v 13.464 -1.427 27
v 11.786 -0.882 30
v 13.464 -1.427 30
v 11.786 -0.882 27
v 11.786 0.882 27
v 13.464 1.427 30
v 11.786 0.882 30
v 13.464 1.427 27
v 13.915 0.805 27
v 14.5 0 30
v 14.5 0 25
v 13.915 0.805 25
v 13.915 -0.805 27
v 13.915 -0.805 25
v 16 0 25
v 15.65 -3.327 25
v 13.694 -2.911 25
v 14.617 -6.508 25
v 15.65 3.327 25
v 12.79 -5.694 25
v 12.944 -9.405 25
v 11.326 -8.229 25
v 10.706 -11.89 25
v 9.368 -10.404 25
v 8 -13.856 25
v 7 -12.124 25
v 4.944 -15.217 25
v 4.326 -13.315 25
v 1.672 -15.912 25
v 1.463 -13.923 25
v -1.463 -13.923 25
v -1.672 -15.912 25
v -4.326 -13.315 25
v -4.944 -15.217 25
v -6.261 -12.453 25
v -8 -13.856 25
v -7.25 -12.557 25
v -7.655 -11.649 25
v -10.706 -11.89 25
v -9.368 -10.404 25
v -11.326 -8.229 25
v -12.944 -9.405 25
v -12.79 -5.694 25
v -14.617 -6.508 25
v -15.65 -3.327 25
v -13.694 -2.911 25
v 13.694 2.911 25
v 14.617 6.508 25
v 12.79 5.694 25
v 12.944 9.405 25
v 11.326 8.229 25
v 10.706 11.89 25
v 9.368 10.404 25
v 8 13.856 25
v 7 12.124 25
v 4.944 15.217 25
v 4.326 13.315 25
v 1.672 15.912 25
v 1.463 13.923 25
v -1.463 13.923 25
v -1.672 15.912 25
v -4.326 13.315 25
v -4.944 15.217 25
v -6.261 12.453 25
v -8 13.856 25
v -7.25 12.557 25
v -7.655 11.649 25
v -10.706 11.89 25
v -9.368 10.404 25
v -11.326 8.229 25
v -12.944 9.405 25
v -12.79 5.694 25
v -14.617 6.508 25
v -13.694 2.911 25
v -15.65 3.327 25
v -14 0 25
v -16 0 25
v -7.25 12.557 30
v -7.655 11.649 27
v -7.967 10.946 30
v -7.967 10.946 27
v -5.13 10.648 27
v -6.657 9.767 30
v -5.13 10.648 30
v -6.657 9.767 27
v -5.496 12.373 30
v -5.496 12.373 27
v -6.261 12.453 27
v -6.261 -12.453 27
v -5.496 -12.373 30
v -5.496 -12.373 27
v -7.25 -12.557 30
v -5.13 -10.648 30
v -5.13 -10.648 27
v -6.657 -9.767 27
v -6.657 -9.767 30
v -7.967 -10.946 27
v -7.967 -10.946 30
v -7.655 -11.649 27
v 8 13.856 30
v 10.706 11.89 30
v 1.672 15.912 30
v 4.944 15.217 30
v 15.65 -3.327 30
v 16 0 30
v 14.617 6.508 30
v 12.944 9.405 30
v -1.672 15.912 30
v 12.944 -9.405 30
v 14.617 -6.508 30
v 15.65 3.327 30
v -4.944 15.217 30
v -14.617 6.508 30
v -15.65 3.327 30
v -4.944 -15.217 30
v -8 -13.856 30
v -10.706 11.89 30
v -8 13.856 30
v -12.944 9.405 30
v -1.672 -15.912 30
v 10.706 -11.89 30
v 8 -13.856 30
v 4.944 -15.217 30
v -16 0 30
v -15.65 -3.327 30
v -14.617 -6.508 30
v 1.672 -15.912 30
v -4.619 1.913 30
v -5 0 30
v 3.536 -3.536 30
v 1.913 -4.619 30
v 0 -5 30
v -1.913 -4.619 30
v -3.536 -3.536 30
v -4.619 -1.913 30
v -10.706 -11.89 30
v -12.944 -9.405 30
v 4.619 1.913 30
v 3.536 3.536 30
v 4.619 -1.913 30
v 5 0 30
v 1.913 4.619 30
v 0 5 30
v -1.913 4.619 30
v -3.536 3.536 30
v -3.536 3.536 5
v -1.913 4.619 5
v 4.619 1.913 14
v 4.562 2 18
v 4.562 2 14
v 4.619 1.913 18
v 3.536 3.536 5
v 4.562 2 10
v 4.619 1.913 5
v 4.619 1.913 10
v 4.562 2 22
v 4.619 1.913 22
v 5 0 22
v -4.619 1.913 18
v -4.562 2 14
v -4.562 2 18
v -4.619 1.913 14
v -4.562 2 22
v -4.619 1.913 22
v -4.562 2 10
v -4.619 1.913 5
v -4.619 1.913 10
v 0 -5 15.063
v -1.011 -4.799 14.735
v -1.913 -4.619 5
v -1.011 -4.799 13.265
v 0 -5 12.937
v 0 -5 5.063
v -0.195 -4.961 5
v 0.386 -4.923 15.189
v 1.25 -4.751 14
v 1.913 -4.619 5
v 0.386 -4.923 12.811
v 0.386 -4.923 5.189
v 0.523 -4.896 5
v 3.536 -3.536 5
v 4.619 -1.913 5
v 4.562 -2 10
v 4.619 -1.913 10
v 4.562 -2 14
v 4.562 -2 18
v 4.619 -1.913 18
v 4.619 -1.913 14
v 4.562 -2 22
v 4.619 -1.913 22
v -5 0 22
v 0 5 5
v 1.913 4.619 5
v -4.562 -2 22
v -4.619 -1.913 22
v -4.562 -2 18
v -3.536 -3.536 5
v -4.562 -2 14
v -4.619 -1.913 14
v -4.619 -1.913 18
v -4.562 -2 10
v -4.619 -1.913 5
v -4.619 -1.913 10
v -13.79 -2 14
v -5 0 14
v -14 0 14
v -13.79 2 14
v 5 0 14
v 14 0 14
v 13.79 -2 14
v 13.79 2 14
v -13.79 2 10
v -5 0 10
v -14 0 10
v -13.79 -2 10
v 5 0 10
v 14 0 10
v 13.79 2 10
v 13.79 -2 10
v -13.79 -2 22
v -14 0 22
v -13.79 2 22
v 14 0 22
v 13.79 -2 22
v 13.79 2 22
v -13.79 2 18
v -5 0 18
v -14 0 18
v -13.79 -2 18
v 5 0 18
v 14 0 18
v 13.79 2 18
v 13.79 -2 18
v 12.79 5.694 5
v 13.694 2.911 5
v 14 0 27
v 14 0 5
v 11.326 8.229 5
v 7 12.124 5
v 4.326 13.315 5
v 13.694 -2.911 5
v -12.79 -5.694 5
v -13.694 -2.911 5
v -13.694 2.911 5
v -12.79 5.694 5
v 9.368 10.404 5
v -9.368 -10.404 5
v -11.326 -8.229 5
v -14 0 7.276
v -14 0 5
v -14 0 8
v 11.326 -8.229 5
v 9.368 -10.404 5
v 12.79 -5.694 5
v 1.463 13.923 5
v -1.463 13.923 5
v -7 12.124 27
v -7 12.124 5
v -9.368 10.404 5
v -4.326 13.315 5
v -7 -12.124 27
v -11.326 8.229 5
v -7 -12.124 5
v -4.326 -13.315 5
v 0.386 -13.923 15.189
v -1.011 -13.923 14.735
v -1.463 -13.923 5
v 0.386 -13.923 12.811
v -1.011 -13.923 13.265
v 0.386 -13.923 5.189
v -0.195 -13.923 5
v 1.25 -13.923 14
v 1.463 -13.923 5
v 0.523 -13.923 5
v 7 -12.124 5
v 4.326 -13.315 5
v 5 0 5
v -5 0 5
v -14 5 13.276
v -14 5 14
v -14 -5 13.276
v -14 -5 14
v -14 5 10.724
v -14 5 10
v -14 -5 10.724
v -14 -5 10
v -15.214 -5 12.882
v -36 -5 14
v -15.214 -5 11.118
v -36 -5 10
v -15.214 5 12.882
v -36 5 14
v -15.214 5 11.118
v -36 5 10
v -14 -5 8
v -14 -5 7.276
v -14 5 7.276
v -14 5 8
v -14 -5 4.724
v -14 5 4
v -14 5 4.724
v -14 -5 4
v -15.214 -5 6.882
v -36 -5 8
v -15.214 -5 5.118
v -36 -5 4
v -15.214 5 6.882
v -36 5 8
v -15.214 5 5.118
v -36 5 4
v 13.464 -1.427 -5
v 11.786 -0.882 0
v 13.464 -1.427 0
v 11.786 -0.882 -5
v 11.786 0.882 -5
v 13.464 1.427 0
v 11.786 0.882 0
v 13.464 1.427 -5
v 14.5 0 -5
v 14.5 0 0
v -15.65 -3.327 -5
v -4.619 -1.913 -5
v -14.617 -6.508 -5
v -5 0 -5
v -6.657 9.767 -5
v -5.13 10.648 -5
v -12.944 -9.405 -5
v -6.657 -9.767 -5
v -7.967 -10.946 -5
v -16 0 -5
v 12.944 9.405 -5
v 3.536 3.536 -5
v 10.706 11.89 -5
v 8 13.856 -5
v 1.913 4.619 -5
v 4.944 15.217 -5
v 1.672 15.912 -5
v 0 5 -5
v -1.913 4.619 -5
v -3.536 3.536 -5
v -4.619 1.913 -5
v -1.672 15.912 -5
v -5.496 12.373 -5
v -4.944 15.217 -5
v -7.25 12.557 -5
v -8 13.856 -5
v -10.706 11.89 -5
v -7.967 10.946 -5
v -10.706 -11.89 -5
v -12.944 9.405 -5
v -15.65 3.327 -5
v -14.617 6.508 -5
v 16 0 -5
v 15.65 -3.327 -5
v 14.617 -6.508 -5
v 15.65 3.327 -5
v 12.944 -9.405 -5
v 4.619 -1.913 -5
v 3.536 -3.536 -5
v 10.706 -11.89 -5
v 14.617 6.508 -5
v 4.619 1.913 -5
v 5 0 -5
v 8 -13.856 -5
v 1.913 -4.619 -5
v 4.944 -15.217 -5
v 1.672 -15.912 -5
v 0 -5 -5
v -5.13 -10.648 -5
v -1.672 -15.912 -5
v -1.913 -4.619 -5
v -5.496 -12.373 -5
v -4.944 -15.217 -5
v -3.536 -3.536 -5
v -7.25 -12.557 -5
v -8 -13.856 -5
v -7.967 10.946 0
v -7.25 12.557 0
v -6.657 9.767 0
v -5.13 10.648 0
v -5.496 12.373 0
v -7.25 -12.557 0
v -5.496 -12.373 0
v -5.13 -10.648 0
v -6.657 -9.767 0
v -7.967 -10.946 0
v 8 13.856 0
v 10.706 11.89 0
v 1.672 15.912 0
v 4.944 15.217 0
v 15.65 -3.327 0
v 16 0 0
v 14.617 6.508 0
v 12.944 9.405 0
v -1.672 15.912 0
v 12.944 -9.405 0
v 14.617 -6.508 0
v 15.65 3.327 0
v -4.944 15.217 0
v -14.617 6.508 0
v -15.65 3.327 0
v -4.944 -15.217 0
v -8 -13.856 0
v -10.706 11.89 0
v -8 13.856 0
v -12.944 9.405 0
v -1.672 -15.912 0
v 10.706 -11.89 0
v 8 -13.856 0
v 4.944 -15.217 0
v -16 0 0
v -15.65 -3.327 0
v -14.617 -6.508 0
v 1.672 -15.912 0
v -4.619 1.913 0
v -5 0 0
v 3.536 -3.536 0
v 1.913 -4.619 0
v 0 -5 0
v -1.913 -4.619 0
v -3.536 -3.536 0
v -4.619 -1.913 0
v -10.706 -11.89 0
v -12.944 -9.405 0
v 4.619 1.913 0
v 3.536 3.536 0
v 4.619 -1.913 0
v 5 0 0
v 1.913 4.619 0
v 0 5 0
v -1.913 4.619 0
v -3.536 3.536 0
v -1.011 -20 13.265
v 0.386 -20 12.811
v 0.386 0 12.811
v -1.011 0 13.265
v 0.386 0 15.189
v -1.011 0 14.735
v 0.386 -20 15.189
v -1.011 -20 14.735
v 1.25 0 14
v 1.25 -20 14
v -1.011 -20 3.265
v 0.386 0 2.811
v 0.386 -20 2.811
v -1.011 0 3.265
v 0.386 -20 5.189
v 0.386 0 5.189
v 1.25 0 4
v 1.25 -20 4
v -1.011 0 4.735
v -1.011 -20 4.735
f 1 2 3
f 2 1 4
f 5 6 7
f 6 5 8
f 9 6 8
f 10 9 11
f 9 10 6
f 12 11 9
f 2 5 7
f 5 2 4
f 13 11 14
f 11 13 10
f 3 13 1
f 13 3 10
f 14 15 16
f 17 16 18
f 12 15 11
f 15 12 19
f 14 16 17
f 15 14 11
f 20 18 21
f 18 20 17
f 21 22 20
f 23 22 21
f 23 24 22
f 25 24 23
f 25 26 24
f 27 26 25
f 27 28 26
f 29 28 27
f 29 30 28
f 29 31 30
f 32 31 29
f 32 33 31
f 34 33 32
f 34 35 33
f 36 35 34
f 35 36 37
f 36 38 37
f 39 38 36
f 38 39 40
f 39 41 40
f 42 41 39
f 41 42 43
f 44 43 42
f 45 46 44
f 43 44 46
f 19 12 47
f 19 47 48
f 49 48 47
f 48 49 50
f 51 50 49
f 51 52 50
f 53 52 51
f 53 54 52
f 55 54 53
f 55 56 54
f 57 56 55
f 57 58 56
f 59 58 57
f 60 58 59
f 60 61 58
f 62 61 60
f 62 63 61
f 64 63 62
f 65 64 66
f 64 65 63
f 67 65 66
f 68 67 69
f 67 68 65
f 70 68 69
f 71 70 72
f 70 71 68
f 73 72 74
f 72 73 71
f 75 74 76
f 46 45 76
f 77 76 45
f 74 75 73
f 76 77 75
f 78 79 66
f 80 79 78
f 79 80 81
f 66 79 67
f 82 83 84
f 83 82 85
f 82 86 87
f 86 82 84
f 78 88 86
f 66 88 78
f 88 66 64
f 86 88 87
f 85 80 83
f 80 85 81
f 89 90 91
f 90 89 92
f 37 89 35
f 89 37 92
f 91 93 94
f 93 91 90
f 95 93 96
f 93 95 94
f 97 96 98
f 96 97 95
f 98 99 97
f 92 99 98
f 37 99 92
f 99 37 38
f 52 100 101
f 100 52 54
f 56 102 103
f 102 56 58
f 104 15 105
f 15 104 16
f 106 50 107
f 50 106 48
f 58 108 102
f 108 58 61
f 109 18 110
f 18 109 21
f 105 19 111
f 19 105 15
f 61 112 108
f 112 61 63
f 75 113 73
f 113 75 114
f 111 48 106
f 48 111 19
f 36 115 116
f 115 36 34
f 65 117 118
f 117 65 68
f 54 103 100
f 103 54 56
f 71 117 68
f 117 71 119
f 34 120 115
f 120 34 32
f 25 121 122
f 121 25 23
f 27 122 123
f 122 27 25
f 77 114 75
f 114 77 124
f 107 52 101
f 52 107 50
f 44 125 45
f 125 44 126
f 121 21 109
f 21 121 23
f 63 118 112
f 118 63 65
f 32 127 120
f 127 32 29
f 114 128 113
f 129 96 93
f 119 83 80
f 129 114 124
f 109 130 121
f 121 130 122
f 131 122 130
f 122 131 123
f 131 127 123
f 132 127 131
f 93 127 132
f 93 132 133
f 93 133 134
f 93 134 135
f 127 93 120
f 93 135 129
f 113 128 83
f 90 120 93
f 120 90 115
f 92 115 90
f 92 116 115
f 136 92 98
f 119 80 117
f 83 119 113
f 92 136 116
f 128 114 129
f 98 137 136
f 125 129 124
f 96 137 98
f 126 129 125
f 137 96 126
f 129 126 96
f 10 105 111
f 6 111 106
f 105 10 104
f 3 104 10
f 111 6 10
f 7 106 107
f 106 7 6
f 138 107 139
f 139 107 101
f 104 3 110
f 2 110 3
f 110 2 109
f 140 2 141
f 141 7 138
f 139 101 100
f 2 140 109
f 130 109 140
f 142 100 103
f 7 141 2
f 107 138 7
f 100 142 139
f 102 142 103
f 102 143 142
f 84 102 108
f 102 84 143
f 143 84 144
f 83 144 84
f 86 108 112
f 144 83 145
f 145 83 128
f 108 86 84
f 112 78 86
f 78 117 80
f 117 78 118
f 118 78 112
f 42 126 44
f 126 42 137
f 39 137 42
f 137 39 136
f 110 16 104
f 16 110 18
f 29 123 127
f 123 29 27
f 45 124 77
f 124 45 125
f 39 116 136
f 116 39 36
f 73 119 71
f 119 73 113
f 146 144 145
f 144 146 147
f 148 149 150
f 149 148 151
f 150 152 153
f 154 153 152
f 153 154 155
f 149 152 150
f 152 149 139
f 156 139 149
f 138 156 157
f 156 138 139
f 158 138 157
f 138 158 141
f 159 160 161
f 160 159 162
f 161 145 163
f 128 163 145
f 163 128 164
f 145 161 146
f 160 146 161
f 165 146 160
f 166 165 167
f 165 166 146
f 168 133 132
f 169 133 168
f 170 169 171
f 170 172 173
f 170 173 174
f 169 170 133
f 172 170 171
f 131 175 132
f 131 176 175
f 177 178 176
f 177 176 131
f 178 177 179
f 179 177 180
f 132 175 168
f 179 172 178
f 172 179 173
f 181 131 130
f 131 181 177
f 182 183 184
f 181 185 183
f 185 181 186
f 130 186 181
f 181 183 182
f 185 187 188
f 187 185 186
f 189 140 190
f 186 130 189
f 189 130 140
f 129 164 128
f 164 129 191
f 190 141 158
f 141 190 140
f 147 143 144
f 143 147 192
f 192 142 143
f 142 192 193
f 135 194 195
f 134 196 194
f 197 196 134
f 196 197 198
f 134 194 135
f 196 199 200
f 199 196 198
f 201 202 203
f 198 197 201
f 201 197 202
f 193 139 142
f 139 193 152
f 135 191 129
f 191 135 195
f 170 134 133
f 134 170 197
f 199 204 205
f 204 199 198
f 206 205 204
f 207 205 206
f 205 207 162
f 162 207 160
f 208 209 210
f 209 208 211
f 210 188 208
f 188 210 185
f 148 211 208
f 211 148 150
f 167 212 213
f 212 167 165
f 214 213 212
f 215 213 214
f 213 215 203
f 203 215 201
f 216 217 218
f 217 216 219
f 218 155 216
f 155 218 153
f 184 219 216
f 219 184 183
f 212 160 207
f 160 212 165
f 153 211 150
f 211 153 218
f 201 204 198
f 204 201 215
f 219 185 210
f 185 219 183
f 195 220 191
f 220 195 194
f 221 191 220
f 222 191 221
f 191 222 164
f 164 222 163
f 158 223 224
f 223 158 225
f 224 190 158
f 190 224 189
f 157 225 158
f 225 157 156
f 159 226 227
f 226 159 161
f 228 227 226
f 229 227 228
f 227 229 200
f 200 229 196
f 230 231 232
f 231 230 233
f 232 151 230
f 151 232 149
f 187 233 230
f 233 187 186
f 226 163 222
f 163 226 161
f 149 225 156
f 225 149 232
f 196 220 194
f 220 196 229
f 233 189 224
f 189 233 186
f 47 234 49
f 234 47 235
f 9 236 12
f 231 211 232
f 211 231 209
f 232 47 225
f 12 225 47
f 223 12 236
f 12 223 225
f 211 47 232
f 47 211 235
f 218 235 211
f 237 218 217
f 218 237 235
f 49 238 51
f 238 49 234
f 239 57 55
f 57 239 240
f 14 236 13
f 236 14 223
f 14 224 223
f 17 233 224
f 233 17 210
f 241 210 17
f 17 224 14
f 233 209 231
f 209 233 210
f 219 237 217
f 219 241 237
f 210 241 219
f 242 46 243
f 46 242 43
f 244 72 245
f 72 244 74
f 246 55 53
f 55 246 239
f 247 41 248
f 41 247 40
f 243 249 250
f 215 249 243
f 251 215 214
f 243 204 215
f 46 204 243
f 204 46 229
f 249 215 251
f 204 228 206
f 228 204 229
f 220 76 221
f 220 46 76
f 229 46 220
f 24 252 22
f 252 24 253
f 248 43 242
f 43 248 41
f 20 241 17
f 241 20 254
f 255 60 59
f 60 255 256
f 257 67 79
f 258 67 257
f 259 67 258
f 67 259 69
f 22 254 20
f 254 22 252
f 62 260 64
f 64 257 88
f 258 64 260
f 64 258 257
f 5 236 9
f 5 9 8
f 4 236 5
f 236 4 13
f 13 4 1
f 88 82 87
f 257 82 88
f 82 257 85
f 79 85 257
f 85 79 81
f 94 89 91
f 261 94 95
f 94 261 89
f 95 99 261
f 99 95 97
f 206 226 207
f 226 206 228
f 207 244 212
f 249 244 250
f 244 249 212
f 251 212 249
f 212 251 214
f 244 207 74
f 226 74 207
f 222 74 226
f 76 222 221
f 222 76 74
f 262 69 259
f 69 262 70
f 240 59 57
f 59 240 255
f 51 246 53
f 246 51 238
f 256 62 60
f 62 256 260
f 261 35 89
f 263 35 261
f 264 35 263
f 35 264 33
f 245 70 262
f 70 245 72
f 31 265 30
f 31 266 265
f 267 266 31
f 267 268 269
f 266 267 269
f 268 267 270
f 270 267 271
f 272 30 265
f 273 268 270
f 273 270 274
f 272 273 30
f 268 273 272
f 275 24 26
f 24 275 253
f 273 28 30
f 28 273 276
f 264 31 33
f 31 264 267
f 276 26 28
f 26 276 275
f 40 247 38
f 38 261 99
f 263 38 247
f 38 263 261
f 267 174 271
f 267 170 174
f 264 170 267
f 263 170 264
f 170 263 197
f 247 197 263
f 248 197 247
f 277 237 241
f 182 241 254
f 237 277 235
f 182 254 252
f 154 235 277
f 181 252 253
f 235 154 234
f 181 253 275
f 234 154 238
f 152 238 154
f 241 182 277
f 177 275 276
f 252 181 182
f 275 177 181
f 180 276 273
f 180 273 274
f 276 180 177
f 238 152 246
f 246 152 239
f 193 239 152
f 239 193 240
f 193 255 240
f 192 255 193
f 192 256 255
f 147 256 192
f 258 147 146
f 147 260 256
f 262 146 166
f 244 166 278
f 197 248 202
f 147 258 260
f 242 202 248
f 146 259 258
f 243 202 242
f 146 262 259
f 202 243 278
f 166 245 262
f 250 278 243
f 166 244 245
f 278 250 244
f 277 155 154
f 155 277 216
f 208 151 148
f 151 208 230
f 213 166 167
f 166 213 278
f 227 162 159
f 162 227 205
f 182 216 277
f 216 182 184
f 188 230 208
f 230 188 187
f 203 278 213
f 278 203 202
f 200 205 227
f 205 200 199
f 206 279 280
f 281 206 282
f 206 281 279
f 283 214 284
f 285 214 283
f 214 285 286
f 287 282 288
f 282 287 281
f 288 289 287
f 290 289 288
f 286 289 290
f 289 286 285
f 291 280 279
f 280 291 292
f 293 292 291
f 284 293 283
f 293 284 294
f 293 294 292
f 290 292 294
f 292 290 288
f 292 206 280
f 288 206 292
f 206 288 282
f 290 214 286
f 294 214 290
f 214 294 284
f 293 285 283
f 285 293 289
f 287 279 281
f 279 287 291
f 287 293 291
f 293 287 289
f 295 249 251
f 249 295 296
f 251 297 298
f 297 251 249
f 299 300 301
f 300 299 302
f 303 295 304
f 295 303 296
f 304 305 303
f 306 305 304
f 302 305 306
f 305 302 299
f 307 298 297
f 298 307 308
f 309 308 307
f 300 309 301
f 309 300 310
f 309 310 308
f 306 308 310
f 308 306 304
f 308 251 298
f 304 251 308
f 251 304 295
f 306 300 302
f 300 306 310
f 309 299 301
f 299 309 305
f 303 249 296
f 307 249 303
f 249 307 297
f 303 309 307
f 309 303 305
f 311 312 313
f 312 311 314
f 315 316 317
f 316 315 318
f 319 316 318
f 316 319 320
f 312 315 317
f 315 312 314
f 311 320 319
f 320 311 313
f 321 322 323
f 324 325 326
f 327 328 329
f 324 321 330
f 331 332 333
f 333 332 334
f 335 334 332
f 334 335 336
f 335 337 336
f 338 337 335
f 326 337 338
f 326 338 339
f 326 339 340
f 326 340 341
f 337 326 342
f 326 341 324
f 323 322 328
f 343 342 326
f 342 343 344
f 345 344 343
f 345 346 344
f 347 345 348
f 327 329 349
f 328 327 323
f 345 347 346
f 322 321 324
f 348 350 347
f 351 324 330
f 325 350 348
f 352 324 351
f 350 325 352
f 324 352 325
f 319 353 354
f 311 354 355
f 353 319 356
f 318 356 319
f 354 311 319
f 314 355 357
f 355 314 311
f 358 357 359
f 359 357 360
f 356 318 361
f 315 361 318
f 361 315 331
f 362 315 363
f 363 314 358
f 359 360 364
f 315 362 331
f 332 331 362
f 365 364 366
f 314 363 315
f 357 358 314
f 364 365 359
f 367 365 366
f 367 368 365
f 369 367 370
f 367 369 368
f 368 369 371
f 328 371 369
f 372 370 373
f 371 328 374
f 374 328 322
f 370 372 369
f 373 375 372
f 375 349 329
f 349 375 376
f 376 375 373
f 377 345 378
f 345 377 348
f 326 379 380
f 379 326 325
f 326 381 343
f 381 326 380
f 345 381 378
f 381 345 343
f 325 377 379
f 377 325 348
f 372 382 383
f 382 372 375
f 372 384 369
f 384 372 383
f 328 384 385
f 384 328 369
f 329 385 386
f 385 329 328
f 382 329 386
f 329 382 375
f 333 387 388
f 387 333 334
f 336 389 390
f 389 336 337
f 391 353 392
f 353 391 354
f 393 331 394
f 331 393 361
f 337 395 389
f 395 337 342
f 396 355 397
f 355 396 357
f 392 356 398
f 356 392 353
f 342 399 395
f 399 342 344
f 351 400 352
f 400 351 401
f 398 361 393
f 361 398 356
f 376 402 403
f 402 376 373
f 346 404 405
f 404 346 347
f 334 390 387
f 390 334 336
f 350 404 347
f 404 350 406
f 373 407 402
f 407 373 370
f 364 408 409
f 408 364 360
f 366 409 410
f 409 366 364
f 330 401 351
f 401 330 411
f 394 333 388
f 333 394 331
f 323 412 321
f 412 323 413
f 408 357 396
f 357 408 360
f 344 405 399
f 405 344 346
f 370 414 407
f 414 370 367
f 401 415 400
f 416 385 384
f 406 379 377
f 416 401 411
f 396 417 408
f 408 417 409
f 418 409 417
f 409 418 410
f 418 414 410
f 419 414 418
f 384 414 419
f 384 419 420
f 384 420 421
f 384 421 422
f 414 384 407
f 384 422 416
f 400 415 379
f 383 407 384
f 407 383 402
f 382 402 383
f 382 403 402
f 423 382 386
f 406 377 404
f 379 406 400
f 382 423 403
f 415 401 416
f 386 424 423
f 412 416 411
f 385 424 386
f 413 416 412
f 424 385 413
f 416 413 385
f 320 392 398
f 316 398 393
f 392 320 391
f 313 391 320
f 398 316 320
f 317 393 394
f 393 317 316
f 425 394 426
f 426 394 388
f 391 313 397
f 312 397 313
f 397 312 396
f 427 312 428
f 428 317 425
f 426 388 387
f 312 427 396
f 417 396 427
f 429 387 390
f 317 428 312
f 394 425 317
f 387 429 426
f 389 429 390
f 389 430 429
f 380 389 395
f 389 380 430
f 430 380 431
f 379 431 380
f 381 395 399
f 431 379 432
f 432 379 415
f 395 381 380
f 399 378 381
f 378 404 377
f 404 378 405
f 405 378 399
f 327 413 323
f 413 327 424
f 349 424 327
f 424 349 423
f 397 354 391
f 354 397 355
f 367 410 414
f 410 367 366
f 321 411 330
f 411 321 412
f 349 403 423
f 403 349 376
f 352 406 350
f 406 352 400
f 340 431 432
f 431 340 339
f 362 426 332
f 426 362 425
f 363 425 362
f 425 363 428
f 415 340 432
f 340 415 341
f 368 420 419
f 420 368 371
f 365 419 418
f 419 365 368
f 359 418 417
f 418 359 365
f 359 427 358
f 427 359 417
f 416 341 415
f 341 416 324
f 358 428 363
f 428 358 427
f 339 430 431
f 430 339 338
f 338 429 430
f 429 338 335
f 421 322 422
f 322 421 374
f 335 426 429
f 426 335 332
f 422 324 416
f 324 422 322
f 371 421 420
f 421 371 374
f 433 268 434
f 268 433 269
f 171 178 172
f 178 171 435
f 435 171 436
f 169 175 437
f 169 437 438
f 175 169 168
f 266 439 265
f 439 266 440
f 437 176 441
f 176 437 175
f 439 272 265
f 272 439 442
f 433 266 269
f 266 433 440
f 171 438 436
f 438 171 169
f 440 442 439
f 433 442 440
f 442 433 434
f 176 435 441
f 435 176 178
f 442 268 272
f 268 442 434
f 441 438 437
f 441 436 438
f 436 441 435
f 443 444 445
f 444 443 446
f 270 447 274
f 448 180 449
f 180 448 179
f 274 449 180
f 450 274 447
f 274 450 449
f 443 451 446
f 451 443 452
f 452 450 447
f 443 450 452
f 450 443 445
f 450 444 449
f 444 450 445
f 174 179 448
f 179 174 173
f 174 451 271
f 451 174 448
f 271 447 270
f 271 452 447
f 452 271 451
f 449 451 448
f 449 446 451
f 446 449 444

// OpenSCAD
module end_plate() {
    difference() {
        cylinder(h = 5, d = 32); // Base disc
        translate([0, 0, -1]) cylinder(h = 7, d = 10); // Central hole
        for (i = [0, 120, 240]) { // Symmetrical hole arrangement
            rotate([0, 0, i]) translate([13, 0, 0]) cylinder(h = 7, d = 3); // Screw holes symmetrically spaced
        }
    }
}

module central_body() {
    difference() {
        cylinder(h = 22, d = 28); // Uniform central body without extra features
        translate([0, 0, -1]) cylinder(h = 24, d = 10); // Central bore
        for (z = [7, 15]) { // Groove positions adjusted to match original depth and width
            translate([0, 0, z]) cube([28, 4, 4], center = true); // Standard grooves for cross bars
        }
    }
}

module cross_bar() {
    difference() {
        translate([-11, 0, 0]) cube([22, 4, 10], center = true); // Length increased and dimensions adjusted
        cylinder(h = 10, d = 3, center = true); // Center hole aligned correctly
    }
}

module pin() {
    cylinder(h = 20, d = 2.5); // Slightly extended length for proper alignment
}

module flexible_coupling() {
    translate([0, 0, 25]) end_plate();
    translate([0, 0, 5]) central_body();
    
    // Adjust position of cross bars symmetrically
    translate([-14, 0, 12]) rotate([90, 0, 0]) cross_bar();
    translate([-14, 0, 6]) rotate([90, 0, 0]) cross_bar();
    
    // Correct alignment of pins
    translate([0, 0, 14]) rotate([90, 0, 0]) pin();
    translate([0, 0, 4]) rotate([90, 0, 0]) pin();
    
    translate([0, 0, -5]) end_plate();
}

flexible_coupling();
